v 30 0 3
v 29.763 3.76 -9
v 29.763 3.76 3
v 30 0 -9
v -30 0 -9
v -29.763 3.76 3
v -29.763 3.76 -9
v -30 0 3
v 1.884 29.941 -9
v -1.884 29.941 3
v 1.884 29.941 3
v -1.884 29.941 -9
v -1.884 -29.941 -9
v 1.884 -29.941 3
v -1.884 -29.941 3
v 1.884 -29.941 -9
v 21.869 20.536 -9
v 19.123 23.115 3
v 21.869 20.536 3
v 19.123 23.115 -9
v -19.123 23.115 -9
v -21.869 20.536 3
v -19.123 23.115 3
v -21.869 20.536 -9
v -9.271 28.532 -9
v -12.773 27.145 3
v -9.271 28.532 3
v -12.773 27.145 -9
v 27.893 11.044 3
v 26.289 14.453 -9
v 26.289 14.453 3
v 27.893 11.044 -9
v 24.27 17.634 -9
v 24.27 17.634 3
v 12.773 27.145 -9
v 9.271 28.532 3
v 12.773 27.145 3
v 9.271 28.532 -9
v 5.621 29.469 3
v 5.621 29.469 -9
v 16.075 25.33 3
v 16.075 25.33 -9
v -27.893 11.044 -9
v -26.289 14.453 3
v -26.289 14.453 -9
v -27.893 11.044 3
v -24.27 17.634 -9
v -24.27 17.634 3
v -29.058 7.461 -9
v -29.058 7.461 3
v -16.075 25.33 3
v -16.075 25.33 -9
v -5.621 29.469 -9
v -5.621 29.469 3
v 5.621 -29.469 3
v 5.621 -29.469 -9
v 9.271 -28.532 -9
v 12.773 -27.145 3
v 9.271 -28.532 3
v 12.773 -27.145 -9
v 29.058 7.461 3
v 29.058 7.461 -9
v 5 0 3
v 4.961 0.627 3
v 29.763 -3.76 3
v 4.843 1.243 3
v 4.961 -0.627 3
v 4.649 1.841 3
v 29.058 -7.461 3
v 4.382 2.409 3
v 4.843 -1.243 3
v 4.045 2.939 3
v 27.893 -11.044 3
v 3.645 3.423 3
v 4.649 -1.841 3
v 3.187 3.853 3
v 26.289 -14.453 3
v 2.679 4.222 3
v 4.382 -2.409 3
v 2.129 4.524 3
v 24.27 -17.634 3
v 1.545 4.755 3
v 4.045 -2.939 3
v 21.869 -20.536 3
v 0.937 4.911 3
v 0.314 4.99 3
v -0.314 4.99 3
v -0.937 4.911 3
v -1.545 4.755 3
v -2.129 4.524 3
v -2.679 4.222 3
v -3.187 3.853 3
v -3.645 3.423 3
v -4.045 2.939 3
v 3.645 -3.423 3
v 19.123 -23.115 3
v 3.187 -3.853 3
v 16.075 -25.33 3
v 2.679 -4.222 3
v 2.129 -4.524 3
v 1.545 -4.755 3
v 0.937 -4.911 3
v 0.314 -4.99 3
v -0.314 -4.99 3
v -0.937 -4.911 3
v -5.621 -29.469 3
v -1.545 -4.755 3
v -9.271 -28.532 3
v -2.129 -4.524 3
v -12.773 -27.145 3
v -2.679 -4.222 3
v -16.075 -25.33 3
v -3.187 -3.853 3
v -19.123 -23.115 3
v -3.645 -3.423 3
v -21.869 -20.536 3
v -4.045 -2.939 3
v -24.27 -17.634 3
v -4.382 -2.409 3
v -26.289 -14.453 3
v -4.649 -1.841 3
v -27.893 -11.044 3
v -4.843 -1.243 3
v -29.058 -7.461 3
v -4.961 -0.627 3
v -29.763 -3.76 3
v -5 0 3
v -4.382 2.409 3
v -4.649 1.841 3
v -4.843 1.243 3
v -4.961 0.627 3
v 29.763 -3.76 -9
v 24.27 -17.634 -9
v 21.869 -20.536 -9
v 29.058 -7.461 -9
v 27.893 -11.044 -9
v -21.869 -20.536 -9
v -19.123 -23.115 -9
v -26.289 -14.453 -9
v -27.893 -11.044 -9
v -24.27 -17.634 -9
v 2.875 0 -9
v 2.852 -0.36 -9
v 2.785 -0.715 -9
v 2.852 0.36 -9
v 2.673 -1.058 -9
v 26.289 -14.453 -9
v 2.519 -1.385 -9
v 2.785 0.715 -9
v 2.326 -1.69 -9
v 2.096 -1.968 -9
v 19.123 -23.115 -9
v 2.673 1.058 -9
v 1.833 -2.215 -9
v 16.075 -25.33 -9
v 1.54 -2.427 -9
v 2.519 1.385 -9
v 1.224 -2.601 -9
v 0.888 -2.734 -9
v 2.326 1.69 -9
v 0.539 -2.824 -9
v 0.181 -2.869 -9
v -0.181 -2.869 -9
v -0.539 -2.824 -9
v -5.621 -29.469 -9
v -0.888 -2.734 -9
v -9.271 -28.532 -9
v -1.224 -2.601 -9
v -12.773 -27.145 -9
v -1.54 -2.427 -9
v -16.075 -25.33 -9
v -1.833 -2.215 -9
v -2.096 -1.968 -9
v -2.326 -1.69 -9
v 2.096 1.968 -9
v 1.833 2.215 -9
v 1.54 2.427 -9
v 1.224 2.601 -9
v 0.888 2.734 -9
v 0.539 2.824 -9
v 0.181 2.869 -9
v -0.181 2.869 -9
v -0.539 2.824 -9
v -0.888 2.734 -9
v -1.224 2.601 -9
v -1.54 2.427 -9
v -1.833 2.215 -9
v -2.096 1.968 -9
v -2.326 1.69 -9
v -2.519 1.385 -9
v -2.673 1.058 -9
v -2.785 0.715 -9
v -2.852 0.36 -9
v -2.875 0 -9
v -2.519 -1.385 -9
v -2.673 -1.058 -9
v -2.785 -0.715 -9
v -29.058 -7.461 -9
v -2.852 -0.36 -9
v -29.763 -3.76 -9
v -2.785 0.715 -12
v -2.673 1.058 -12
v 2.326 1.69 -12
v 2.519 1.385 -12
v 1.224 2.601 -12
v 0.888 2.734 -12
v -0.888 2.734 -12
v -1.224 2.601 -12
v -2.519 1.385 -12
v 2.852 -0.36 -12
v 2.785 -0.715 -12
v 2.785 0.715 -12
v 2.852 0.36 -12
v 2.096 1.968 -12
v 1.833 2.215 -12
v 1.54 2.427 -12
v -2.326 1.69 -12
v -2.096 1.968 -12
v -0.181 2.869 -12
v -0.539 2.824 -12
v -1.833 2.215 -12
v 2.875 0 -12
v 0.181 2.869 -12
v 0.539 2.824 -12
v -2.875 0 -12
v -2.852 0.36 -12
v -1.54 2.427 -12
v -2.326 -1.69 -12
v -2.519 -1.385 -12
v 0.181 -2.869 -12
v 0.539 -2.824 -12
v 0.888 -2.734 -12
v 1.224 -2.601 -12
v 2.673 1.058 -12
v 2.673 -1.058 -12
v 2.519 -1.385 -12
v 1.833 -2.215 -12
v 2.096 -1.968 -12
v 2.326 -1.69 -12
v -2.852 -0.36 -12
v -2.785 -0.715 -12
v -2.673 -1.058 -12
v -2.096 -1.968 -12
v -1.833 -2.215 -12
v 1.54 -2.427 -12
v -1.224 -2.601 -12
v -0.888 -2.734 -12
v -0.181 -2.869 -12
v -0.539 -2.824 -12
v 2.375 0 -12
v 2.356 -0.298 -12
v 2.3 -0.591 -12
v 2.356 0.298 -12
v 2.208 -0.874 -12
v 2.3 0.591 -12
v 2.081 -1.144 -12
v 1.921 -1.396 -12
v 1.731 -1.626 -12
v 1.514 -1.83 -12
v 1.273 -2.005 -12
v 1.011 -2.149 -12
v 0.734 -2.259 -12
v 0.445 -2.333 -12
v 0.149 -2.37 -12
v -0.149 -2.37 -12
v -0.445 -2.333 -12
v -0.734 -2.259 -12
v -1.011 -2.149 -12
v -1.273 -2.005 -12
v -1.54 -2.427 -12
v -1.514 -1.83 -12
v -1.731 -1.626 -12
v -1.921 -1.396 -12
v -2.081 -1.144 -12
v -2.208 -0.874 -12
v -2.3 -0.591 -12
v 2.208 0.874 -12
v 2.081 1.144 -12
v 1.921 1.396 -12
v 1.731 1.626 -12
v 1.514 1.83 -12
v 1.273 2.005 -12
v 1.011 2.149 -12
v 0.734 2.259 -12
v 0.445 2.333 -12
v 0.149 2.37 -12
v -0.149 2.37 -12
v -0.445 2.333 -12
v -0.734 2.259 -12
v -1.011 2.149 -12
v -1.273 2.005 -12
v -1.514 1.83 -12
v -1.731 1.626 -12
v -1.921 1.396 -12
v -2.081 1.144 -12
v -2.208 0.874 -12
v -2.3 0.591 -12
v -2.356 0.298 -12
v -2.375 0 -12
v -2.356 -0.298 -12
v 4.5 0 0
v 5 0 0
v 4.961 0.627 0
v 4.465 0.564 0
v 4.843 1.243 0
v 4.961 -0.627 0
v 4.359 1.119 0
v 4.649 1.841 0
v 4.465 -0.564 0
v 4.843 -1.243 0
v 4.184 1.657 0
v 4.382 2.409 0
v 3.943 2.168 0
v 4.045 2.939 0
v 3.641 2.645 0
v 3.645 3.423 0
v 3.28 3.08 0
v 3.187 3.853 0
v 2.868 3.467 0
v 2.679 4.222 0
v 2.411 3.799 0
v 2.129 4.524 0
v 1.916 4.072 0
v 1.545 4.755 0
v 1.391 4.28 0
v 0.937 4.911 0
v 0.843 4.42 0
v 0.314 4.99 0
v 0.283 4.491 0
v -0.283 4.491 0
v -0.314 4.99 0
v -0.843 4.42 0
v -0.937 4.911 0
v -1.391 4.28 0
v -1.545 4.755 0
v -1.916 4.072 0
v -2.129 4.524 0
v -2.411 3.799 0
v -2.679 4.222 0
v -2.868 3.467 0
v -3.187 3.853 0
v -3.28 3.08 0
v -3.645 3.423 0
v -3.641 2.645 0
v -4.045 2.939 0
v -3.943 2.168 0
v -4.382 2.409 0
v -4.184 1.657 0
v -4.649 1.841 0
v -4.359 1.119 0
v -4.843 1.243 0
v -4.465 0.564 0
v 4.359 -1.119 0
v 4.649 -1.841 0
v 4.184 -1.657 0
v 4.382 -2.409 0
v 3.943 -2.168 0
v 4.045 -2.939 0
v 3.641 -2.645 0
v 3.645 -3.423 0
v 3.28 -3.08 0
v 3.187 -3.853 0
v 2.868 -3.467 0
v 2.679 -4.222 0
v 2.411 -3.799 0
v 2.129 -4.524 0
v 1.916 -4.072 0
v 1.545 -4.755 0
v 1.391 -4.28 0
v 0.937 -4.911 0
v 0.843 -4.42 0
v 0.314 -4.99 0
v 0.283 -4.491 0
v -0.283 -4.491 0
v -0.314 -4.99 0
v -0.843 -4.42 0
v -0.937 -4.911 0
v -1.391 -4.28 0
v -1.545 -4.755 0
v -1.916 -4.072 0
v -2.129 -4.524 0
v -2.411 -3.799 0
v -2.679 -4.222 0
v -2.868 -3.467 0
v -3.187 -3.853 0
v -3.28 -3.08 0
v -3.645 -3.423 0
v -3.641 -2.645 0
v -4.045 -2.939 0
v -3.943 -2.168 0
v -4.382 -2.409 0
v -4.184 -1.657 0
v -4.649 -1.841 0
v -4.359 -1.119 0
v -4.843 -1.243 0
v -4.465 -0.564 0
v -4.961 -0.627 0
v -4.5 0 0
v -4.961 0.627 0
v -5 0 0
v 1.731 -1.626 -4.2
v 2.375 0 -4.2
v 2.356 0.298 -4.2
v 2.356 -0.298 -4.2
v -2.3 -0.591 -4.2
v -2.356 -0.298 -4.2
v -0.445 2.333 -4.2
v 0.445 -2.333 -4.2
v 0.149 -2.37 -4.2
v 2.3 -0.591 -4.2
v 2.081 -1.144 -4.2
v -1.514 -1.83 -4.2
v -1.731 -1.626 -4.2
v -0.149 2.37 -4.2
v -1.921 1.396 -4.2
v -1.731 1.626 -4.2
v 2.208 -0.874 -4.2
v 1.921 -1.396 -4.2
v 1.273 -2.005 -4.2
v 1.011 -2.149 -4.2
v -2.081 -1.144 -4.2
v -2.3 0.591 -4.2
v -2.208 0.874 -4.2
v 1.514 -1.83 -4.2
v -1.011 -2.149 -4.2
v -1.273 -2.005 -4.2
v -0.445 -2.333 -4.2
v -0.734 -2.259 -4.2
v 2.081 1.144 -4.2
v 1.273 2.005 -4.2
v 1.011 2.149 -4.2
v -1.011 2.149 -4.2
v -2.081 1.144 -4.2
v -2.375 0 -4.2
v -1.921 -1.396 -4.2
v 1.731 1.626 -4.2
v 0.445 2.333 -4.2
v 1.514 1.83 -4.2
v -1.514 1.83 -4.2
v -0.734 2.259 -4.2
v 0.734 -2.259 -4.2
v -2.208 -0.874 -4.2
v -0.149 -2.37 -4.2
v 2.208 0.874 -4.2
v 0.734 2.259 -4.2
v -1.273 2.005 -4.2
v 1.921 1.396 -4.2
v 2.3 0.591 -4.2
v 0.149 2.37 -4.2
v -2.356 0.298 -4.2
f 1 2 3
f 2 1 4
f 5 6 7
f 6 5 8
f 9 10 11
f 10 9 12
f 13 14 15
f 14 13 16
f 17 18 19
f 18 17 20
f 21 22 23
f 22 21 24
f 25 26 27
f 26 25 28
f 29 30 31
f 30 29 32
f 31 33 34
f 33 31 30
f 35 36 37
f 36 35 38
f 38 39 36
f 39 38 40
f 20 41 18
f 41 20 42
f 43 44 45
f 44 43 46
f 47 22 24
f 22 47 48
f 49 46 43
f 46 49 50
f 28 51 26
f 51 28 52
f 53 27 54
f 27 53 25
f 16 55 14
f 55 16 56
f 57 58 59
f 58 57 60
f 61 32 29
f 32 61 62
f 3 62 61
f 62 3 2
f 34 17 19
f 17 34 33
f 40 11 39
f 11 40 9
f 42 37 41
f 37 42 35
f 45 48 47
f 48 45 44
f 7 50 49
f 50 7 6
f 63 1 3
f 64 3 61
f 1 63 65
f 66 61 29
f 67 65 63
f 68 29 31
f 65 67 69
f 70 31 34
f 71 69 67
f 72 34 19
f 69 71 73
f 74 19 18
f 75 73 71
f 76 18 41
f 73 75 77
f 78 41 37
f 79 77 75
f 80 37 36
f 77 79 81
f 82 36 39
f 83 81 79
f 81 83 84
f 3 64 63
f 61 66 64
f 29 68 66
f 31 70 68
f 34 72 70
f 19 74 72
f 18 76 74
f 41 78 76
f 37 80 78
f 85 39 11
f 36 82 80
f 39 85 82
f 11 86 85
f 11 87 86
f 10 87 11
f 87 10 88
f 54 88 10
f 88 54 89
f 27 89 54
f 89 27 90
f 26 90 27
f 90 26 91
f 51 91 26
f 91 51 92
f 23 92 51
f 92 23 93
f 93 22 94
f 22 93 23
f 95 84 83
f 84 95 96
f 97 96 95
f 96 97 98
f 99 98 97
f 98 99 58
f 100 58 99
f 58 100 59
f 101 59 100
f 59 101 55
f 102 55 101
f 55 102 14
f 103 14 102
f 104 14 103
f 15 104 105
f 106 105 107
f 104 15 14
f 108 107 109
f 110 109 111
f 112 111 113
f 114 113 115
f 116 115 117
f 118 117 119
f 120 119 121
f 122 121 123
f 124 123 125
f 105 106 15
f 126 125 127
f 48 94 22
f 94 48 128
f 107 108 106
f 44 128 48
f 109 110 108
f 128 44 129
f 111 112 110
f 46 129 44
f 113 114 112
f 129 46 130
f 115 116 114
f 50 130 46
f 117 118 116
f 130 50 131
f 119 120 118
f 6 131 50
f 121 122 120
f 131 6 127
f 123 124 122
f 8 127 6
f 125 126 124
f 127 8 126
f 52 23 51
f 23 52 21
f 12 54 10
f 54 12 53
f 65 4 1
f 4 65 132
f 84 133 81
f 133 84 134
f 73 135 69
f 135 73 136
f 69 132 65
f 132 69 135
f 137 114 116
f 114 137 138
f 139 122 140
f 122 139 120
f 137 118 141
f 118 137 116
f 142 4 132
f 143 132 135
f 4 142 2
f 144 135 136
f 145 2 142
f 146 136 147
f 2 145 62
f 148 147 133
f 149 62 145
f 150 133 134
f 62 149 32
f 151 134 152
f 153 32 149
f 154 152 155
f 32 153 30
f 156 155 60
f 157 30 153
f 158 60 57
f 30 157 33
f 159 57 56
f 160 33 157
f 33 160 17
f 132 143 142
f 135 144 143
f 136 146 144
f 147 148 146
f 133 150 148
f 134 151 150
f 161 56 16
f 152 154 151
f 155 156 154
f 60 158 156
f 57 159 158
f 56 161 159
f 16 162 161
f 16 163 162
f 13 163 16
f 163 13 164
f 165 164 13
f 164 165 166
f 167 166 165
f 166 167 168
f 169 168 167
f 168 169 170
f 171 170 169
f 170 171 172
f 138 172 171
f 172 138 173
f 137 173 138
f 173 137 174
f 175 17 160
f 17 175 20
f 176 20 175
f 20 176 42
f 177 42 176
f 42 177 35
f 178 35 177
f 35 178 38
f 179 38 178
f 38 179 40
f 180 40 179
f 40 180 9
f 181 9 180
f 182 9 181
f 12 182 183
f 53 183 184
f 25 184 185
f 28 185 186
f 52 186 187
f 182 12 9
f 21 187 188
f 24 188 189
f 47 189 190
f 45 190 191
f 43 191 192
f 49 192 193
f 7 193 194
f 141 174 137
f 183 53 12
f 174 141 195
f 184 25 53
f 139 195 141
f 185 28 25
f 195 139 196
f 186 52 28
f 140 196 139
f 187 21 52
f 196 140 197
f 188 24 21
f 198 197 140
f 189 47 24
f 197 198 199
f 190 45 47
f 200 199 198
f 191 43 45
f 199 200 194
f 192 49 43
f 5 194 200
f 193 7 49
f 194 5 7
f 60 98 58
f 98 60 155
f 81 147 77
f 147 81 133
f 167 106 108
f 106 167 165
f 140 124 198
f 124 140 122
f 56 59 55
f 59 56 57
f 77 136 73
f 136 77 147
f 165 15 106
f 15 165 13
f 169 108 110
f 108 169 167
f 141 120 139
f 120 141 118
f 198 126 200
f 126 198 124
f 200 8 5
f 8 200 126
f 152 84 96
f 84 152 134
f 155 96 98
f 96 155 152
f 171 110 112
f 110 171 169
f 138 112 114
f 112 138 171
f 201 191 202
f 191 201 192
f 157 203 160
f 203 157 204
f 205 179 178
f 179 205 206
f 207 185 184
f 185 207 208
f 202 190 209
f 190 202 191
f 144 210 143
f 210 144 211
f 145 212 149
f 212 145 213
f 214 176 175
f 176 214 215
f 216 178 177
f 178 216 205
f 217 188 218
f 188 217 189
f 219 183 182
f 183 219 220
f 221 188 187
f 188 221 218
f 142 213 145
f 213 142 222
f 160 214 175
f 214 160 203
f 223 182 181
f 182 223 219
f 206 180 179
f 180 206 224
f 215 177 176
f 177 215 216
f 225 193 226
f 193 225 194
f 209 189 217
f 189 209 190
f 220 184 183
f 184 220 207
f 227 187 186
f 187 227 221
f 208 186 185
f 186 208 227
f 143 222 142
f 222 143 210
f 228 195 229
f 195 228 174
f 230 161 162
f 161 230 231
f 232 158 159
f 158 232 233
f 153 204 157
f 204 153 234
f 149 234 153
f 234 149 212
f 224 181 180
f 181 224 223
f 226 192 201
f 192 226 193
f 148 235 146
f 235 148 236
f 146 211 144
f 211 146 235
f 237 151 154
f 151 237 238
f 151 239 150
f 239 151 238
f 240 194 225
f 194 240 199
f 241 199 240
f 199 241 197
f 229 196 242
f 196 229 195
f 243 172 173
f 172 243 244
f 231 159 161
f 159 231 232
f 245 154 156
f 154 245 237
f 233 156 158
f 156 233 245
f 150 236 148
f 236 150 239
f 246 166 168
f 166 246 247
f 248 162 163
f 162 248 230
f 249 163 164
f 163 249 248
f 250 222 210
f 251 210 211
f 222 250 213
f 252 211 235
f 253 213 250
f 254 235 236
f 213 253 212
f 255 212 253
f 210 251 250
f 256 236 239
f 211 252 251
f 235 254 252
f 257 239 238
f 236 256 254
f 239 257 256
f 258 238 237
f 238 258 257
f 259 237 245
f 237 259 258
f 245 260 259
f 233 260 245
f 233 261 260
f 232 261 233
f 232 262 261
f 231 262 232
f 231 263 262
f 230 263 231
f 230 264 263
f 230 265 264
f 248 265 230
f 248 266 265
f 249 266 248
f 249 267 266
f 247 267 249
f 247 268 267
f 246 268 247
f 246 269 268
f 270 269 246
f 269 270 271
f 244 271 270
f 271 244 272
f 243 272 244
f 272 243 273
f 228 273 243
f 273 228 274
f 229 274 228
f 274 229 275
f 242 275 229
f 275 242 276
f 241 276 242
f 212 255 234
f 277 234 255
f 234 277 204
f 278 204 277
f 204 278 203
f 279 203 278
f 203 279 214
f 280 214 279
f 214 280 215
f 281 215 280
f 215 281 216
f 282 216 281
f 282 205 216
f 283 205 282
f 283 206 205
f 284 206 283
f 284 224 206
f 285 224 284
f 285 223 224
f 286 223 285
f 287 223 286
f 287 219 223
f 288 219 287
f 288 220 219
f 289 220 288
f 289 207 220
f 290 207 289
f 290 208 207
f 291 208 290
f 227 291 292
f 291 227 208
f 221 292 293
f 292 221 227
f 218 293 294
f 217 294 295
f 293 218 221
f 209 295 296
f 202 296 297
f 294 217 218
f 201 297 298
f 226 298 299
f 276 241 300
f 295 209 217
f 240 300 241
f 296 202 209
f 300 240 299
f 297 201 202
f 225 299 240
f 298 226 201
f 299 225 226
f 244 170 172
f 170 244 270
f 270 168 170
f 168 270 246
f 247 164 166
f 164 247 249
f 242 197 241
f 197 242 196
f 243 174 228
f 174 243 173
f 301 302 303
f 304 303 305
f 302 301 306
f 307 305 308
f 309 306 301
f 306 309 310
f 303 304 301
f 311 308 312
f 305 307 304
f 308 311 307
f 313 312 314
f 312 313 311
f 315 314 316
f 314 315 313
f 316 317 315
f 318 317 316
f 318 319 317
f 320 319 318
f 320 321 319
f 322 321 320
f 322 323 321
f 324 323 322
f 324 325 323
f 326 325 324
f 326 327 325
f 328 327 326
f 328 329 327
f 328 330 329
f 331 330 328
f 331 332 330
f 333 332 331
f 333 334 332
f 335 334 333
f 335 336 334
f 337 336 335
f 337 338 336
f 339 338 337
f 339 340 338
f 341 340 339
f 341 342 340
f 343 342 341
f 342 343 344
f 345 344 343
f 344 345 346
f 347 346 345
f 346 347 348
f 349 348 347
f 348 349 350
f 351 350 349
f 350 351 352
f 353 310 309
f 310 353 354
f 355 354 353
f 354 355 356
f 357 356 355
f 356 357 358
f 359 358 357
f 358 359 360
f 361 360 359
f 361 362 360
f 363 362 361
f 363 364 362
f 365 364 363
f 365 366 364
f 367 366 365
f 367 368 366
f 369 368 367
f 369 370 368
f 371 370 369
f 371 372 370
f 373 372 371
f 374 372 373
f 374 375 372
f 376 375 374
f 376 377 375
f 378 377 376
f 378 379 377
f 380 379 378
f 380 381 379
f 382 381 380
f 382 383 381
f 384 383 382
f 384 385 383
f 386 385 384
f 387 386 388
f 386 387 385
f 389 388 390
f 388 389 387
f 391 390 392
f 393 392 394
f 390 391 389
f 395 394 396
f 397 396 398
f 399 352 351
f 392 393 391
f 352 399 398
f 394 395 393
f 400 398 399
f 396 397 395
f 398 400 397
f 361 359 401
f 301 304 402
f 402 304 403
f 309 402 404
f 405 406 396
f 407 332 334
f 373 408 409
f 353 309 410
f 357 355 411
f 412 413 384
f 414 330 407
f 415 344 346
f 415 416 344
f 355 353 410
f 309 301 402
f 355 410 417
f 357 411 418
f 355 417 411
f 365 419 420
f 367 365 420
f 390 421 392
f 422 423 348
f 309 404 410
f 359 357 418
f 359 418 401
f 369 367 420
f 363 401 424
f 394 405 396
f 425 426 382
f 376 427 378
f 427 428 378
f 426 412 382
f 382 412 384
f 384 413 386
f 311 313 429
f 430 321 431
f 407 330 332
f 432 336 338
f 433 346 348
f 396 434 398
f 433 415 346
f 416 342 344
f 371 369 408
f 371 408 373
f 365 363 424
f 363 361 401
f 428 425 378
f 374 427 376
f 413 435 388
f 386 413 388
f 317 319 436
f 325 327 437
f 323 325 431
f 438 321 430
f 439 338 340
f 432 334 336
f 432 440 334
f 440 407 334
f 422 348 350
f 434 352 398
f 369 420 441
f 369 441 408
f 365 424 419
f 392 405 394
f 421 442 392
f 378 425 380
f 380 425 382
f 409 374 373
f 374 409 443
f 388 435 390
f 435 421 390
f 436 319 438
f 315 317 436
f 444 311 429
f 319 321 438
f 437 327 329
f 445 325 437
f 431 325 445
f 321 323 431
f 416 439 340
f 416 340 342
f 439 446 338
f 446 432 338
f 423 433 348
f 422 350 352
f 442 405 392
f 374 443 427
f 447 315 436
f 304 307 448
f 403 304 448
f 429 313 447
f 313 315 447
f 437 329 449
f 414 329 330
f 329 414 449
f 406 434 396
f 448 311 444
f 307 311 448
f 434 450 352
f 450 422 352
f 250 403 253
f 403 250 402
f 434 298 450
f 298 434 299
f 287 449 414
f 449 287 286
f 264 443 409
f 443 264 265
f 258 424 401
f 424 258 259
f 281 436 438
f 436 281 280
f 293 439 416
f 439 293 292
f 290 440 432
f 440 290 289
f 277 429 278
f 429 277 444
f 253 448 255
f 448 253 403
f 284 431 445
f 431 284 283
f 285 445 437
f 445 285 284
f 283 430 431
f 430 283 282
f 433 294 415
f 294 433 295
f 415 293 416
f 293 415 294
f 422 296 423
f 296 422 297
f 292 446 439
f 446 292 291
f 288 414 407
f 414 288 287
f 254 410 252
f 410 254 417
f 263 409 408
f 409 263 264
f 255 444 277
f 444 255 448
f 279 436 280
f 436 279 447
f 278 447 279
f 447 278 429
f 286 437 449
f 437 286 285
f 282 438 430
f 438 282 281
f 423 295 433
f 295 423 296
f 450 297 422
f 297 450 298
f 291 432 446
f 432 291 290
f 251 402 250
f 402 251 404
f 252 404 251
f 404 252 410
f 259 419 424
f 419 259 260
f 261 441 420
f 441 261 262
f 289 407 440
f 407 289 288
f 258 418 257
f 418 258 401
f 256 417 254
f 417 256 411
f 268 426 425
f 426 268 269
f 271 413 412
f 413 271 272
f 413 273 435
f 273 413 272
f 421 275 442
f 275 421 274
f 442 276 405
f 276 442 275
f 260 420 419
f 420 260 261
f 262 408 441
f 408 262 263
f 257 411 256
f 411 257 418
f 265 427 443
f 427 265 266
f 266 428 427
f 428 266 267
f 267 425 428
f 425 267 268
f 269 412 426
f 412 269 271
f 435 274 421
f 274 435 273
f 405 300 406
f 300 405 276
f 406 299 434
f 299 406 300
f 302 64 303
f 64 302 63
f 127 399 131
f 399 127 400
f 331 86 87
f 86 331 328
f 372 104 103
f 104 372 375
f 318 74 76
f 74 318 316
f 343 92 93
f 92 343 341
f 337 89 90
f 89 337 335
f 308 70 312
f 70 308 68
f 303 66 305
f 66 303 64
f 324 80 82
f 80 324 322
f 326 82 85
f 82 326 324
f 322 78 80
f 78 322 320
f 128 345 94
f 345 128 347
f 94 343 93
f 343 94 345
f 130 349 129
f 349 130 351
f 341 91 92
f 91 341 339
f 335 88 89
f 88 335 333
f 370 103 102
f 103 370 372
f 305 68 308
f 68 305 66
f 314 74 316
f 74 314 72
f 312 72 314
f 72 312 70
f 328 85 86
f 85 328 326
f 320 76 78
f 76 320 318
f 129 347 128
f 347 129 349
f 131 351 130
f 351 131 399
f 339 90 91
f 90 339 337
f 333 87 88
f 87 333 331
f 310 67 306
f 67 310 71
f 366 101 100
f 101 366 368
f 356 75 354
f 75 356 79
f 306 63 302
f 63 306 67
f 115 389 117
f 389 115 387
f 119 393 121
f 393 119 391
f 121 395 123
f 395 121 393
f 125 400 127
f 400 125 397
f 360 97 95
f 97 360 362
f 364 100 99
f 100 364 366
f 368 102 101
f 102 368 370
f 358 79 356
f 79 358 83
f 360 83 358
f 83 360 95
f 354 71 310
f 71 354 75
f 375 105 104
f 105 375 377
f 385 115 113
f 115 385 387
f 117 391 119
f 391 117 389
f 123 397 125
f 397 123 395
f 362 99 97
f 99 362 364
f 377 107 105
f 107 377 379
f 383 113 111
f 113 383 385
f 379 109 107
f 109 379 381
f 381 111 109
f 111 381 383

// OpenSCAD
$fn = 50;


difference() {
	union() {
		translate(v = [0, 0, -9.0000000000]) {
			cylinder(h = 12, r = 30.0000000000);
		}
		#translate(v = [0, 0, -12.0000000000]) {
			cylinder(h = 12, r = 2.8750000000);
		}
	}
	union() {
		translate(v = [0, 0, 0]) {
			rotate(a = [0, 0, 0]) {
				difference() {
					union() {
						translate(v = [0, 0, -12.0000000000]) {
							cylinder(h = 12, r = 2.2500000000);
						}
						translate(v = [0, 0, -4.2000000000]) {
							cylinder(h = 4.2000000000, r1 = 2.3750000000, r2 = 4.5000000000);
						}
						translate(v = [0, 0, -12.0000000000]) {
							cylinder(h = 12, r = 2.3750000000);
						}
						translate(v = [0, 0, -12.0000000000]) {
							cylinder(h = 12, r = 2.2500000000);
						}
					}
					union();
				}
			}
		}
		#cylinder(h = 3, r = 5.0000000000);
	}
}
